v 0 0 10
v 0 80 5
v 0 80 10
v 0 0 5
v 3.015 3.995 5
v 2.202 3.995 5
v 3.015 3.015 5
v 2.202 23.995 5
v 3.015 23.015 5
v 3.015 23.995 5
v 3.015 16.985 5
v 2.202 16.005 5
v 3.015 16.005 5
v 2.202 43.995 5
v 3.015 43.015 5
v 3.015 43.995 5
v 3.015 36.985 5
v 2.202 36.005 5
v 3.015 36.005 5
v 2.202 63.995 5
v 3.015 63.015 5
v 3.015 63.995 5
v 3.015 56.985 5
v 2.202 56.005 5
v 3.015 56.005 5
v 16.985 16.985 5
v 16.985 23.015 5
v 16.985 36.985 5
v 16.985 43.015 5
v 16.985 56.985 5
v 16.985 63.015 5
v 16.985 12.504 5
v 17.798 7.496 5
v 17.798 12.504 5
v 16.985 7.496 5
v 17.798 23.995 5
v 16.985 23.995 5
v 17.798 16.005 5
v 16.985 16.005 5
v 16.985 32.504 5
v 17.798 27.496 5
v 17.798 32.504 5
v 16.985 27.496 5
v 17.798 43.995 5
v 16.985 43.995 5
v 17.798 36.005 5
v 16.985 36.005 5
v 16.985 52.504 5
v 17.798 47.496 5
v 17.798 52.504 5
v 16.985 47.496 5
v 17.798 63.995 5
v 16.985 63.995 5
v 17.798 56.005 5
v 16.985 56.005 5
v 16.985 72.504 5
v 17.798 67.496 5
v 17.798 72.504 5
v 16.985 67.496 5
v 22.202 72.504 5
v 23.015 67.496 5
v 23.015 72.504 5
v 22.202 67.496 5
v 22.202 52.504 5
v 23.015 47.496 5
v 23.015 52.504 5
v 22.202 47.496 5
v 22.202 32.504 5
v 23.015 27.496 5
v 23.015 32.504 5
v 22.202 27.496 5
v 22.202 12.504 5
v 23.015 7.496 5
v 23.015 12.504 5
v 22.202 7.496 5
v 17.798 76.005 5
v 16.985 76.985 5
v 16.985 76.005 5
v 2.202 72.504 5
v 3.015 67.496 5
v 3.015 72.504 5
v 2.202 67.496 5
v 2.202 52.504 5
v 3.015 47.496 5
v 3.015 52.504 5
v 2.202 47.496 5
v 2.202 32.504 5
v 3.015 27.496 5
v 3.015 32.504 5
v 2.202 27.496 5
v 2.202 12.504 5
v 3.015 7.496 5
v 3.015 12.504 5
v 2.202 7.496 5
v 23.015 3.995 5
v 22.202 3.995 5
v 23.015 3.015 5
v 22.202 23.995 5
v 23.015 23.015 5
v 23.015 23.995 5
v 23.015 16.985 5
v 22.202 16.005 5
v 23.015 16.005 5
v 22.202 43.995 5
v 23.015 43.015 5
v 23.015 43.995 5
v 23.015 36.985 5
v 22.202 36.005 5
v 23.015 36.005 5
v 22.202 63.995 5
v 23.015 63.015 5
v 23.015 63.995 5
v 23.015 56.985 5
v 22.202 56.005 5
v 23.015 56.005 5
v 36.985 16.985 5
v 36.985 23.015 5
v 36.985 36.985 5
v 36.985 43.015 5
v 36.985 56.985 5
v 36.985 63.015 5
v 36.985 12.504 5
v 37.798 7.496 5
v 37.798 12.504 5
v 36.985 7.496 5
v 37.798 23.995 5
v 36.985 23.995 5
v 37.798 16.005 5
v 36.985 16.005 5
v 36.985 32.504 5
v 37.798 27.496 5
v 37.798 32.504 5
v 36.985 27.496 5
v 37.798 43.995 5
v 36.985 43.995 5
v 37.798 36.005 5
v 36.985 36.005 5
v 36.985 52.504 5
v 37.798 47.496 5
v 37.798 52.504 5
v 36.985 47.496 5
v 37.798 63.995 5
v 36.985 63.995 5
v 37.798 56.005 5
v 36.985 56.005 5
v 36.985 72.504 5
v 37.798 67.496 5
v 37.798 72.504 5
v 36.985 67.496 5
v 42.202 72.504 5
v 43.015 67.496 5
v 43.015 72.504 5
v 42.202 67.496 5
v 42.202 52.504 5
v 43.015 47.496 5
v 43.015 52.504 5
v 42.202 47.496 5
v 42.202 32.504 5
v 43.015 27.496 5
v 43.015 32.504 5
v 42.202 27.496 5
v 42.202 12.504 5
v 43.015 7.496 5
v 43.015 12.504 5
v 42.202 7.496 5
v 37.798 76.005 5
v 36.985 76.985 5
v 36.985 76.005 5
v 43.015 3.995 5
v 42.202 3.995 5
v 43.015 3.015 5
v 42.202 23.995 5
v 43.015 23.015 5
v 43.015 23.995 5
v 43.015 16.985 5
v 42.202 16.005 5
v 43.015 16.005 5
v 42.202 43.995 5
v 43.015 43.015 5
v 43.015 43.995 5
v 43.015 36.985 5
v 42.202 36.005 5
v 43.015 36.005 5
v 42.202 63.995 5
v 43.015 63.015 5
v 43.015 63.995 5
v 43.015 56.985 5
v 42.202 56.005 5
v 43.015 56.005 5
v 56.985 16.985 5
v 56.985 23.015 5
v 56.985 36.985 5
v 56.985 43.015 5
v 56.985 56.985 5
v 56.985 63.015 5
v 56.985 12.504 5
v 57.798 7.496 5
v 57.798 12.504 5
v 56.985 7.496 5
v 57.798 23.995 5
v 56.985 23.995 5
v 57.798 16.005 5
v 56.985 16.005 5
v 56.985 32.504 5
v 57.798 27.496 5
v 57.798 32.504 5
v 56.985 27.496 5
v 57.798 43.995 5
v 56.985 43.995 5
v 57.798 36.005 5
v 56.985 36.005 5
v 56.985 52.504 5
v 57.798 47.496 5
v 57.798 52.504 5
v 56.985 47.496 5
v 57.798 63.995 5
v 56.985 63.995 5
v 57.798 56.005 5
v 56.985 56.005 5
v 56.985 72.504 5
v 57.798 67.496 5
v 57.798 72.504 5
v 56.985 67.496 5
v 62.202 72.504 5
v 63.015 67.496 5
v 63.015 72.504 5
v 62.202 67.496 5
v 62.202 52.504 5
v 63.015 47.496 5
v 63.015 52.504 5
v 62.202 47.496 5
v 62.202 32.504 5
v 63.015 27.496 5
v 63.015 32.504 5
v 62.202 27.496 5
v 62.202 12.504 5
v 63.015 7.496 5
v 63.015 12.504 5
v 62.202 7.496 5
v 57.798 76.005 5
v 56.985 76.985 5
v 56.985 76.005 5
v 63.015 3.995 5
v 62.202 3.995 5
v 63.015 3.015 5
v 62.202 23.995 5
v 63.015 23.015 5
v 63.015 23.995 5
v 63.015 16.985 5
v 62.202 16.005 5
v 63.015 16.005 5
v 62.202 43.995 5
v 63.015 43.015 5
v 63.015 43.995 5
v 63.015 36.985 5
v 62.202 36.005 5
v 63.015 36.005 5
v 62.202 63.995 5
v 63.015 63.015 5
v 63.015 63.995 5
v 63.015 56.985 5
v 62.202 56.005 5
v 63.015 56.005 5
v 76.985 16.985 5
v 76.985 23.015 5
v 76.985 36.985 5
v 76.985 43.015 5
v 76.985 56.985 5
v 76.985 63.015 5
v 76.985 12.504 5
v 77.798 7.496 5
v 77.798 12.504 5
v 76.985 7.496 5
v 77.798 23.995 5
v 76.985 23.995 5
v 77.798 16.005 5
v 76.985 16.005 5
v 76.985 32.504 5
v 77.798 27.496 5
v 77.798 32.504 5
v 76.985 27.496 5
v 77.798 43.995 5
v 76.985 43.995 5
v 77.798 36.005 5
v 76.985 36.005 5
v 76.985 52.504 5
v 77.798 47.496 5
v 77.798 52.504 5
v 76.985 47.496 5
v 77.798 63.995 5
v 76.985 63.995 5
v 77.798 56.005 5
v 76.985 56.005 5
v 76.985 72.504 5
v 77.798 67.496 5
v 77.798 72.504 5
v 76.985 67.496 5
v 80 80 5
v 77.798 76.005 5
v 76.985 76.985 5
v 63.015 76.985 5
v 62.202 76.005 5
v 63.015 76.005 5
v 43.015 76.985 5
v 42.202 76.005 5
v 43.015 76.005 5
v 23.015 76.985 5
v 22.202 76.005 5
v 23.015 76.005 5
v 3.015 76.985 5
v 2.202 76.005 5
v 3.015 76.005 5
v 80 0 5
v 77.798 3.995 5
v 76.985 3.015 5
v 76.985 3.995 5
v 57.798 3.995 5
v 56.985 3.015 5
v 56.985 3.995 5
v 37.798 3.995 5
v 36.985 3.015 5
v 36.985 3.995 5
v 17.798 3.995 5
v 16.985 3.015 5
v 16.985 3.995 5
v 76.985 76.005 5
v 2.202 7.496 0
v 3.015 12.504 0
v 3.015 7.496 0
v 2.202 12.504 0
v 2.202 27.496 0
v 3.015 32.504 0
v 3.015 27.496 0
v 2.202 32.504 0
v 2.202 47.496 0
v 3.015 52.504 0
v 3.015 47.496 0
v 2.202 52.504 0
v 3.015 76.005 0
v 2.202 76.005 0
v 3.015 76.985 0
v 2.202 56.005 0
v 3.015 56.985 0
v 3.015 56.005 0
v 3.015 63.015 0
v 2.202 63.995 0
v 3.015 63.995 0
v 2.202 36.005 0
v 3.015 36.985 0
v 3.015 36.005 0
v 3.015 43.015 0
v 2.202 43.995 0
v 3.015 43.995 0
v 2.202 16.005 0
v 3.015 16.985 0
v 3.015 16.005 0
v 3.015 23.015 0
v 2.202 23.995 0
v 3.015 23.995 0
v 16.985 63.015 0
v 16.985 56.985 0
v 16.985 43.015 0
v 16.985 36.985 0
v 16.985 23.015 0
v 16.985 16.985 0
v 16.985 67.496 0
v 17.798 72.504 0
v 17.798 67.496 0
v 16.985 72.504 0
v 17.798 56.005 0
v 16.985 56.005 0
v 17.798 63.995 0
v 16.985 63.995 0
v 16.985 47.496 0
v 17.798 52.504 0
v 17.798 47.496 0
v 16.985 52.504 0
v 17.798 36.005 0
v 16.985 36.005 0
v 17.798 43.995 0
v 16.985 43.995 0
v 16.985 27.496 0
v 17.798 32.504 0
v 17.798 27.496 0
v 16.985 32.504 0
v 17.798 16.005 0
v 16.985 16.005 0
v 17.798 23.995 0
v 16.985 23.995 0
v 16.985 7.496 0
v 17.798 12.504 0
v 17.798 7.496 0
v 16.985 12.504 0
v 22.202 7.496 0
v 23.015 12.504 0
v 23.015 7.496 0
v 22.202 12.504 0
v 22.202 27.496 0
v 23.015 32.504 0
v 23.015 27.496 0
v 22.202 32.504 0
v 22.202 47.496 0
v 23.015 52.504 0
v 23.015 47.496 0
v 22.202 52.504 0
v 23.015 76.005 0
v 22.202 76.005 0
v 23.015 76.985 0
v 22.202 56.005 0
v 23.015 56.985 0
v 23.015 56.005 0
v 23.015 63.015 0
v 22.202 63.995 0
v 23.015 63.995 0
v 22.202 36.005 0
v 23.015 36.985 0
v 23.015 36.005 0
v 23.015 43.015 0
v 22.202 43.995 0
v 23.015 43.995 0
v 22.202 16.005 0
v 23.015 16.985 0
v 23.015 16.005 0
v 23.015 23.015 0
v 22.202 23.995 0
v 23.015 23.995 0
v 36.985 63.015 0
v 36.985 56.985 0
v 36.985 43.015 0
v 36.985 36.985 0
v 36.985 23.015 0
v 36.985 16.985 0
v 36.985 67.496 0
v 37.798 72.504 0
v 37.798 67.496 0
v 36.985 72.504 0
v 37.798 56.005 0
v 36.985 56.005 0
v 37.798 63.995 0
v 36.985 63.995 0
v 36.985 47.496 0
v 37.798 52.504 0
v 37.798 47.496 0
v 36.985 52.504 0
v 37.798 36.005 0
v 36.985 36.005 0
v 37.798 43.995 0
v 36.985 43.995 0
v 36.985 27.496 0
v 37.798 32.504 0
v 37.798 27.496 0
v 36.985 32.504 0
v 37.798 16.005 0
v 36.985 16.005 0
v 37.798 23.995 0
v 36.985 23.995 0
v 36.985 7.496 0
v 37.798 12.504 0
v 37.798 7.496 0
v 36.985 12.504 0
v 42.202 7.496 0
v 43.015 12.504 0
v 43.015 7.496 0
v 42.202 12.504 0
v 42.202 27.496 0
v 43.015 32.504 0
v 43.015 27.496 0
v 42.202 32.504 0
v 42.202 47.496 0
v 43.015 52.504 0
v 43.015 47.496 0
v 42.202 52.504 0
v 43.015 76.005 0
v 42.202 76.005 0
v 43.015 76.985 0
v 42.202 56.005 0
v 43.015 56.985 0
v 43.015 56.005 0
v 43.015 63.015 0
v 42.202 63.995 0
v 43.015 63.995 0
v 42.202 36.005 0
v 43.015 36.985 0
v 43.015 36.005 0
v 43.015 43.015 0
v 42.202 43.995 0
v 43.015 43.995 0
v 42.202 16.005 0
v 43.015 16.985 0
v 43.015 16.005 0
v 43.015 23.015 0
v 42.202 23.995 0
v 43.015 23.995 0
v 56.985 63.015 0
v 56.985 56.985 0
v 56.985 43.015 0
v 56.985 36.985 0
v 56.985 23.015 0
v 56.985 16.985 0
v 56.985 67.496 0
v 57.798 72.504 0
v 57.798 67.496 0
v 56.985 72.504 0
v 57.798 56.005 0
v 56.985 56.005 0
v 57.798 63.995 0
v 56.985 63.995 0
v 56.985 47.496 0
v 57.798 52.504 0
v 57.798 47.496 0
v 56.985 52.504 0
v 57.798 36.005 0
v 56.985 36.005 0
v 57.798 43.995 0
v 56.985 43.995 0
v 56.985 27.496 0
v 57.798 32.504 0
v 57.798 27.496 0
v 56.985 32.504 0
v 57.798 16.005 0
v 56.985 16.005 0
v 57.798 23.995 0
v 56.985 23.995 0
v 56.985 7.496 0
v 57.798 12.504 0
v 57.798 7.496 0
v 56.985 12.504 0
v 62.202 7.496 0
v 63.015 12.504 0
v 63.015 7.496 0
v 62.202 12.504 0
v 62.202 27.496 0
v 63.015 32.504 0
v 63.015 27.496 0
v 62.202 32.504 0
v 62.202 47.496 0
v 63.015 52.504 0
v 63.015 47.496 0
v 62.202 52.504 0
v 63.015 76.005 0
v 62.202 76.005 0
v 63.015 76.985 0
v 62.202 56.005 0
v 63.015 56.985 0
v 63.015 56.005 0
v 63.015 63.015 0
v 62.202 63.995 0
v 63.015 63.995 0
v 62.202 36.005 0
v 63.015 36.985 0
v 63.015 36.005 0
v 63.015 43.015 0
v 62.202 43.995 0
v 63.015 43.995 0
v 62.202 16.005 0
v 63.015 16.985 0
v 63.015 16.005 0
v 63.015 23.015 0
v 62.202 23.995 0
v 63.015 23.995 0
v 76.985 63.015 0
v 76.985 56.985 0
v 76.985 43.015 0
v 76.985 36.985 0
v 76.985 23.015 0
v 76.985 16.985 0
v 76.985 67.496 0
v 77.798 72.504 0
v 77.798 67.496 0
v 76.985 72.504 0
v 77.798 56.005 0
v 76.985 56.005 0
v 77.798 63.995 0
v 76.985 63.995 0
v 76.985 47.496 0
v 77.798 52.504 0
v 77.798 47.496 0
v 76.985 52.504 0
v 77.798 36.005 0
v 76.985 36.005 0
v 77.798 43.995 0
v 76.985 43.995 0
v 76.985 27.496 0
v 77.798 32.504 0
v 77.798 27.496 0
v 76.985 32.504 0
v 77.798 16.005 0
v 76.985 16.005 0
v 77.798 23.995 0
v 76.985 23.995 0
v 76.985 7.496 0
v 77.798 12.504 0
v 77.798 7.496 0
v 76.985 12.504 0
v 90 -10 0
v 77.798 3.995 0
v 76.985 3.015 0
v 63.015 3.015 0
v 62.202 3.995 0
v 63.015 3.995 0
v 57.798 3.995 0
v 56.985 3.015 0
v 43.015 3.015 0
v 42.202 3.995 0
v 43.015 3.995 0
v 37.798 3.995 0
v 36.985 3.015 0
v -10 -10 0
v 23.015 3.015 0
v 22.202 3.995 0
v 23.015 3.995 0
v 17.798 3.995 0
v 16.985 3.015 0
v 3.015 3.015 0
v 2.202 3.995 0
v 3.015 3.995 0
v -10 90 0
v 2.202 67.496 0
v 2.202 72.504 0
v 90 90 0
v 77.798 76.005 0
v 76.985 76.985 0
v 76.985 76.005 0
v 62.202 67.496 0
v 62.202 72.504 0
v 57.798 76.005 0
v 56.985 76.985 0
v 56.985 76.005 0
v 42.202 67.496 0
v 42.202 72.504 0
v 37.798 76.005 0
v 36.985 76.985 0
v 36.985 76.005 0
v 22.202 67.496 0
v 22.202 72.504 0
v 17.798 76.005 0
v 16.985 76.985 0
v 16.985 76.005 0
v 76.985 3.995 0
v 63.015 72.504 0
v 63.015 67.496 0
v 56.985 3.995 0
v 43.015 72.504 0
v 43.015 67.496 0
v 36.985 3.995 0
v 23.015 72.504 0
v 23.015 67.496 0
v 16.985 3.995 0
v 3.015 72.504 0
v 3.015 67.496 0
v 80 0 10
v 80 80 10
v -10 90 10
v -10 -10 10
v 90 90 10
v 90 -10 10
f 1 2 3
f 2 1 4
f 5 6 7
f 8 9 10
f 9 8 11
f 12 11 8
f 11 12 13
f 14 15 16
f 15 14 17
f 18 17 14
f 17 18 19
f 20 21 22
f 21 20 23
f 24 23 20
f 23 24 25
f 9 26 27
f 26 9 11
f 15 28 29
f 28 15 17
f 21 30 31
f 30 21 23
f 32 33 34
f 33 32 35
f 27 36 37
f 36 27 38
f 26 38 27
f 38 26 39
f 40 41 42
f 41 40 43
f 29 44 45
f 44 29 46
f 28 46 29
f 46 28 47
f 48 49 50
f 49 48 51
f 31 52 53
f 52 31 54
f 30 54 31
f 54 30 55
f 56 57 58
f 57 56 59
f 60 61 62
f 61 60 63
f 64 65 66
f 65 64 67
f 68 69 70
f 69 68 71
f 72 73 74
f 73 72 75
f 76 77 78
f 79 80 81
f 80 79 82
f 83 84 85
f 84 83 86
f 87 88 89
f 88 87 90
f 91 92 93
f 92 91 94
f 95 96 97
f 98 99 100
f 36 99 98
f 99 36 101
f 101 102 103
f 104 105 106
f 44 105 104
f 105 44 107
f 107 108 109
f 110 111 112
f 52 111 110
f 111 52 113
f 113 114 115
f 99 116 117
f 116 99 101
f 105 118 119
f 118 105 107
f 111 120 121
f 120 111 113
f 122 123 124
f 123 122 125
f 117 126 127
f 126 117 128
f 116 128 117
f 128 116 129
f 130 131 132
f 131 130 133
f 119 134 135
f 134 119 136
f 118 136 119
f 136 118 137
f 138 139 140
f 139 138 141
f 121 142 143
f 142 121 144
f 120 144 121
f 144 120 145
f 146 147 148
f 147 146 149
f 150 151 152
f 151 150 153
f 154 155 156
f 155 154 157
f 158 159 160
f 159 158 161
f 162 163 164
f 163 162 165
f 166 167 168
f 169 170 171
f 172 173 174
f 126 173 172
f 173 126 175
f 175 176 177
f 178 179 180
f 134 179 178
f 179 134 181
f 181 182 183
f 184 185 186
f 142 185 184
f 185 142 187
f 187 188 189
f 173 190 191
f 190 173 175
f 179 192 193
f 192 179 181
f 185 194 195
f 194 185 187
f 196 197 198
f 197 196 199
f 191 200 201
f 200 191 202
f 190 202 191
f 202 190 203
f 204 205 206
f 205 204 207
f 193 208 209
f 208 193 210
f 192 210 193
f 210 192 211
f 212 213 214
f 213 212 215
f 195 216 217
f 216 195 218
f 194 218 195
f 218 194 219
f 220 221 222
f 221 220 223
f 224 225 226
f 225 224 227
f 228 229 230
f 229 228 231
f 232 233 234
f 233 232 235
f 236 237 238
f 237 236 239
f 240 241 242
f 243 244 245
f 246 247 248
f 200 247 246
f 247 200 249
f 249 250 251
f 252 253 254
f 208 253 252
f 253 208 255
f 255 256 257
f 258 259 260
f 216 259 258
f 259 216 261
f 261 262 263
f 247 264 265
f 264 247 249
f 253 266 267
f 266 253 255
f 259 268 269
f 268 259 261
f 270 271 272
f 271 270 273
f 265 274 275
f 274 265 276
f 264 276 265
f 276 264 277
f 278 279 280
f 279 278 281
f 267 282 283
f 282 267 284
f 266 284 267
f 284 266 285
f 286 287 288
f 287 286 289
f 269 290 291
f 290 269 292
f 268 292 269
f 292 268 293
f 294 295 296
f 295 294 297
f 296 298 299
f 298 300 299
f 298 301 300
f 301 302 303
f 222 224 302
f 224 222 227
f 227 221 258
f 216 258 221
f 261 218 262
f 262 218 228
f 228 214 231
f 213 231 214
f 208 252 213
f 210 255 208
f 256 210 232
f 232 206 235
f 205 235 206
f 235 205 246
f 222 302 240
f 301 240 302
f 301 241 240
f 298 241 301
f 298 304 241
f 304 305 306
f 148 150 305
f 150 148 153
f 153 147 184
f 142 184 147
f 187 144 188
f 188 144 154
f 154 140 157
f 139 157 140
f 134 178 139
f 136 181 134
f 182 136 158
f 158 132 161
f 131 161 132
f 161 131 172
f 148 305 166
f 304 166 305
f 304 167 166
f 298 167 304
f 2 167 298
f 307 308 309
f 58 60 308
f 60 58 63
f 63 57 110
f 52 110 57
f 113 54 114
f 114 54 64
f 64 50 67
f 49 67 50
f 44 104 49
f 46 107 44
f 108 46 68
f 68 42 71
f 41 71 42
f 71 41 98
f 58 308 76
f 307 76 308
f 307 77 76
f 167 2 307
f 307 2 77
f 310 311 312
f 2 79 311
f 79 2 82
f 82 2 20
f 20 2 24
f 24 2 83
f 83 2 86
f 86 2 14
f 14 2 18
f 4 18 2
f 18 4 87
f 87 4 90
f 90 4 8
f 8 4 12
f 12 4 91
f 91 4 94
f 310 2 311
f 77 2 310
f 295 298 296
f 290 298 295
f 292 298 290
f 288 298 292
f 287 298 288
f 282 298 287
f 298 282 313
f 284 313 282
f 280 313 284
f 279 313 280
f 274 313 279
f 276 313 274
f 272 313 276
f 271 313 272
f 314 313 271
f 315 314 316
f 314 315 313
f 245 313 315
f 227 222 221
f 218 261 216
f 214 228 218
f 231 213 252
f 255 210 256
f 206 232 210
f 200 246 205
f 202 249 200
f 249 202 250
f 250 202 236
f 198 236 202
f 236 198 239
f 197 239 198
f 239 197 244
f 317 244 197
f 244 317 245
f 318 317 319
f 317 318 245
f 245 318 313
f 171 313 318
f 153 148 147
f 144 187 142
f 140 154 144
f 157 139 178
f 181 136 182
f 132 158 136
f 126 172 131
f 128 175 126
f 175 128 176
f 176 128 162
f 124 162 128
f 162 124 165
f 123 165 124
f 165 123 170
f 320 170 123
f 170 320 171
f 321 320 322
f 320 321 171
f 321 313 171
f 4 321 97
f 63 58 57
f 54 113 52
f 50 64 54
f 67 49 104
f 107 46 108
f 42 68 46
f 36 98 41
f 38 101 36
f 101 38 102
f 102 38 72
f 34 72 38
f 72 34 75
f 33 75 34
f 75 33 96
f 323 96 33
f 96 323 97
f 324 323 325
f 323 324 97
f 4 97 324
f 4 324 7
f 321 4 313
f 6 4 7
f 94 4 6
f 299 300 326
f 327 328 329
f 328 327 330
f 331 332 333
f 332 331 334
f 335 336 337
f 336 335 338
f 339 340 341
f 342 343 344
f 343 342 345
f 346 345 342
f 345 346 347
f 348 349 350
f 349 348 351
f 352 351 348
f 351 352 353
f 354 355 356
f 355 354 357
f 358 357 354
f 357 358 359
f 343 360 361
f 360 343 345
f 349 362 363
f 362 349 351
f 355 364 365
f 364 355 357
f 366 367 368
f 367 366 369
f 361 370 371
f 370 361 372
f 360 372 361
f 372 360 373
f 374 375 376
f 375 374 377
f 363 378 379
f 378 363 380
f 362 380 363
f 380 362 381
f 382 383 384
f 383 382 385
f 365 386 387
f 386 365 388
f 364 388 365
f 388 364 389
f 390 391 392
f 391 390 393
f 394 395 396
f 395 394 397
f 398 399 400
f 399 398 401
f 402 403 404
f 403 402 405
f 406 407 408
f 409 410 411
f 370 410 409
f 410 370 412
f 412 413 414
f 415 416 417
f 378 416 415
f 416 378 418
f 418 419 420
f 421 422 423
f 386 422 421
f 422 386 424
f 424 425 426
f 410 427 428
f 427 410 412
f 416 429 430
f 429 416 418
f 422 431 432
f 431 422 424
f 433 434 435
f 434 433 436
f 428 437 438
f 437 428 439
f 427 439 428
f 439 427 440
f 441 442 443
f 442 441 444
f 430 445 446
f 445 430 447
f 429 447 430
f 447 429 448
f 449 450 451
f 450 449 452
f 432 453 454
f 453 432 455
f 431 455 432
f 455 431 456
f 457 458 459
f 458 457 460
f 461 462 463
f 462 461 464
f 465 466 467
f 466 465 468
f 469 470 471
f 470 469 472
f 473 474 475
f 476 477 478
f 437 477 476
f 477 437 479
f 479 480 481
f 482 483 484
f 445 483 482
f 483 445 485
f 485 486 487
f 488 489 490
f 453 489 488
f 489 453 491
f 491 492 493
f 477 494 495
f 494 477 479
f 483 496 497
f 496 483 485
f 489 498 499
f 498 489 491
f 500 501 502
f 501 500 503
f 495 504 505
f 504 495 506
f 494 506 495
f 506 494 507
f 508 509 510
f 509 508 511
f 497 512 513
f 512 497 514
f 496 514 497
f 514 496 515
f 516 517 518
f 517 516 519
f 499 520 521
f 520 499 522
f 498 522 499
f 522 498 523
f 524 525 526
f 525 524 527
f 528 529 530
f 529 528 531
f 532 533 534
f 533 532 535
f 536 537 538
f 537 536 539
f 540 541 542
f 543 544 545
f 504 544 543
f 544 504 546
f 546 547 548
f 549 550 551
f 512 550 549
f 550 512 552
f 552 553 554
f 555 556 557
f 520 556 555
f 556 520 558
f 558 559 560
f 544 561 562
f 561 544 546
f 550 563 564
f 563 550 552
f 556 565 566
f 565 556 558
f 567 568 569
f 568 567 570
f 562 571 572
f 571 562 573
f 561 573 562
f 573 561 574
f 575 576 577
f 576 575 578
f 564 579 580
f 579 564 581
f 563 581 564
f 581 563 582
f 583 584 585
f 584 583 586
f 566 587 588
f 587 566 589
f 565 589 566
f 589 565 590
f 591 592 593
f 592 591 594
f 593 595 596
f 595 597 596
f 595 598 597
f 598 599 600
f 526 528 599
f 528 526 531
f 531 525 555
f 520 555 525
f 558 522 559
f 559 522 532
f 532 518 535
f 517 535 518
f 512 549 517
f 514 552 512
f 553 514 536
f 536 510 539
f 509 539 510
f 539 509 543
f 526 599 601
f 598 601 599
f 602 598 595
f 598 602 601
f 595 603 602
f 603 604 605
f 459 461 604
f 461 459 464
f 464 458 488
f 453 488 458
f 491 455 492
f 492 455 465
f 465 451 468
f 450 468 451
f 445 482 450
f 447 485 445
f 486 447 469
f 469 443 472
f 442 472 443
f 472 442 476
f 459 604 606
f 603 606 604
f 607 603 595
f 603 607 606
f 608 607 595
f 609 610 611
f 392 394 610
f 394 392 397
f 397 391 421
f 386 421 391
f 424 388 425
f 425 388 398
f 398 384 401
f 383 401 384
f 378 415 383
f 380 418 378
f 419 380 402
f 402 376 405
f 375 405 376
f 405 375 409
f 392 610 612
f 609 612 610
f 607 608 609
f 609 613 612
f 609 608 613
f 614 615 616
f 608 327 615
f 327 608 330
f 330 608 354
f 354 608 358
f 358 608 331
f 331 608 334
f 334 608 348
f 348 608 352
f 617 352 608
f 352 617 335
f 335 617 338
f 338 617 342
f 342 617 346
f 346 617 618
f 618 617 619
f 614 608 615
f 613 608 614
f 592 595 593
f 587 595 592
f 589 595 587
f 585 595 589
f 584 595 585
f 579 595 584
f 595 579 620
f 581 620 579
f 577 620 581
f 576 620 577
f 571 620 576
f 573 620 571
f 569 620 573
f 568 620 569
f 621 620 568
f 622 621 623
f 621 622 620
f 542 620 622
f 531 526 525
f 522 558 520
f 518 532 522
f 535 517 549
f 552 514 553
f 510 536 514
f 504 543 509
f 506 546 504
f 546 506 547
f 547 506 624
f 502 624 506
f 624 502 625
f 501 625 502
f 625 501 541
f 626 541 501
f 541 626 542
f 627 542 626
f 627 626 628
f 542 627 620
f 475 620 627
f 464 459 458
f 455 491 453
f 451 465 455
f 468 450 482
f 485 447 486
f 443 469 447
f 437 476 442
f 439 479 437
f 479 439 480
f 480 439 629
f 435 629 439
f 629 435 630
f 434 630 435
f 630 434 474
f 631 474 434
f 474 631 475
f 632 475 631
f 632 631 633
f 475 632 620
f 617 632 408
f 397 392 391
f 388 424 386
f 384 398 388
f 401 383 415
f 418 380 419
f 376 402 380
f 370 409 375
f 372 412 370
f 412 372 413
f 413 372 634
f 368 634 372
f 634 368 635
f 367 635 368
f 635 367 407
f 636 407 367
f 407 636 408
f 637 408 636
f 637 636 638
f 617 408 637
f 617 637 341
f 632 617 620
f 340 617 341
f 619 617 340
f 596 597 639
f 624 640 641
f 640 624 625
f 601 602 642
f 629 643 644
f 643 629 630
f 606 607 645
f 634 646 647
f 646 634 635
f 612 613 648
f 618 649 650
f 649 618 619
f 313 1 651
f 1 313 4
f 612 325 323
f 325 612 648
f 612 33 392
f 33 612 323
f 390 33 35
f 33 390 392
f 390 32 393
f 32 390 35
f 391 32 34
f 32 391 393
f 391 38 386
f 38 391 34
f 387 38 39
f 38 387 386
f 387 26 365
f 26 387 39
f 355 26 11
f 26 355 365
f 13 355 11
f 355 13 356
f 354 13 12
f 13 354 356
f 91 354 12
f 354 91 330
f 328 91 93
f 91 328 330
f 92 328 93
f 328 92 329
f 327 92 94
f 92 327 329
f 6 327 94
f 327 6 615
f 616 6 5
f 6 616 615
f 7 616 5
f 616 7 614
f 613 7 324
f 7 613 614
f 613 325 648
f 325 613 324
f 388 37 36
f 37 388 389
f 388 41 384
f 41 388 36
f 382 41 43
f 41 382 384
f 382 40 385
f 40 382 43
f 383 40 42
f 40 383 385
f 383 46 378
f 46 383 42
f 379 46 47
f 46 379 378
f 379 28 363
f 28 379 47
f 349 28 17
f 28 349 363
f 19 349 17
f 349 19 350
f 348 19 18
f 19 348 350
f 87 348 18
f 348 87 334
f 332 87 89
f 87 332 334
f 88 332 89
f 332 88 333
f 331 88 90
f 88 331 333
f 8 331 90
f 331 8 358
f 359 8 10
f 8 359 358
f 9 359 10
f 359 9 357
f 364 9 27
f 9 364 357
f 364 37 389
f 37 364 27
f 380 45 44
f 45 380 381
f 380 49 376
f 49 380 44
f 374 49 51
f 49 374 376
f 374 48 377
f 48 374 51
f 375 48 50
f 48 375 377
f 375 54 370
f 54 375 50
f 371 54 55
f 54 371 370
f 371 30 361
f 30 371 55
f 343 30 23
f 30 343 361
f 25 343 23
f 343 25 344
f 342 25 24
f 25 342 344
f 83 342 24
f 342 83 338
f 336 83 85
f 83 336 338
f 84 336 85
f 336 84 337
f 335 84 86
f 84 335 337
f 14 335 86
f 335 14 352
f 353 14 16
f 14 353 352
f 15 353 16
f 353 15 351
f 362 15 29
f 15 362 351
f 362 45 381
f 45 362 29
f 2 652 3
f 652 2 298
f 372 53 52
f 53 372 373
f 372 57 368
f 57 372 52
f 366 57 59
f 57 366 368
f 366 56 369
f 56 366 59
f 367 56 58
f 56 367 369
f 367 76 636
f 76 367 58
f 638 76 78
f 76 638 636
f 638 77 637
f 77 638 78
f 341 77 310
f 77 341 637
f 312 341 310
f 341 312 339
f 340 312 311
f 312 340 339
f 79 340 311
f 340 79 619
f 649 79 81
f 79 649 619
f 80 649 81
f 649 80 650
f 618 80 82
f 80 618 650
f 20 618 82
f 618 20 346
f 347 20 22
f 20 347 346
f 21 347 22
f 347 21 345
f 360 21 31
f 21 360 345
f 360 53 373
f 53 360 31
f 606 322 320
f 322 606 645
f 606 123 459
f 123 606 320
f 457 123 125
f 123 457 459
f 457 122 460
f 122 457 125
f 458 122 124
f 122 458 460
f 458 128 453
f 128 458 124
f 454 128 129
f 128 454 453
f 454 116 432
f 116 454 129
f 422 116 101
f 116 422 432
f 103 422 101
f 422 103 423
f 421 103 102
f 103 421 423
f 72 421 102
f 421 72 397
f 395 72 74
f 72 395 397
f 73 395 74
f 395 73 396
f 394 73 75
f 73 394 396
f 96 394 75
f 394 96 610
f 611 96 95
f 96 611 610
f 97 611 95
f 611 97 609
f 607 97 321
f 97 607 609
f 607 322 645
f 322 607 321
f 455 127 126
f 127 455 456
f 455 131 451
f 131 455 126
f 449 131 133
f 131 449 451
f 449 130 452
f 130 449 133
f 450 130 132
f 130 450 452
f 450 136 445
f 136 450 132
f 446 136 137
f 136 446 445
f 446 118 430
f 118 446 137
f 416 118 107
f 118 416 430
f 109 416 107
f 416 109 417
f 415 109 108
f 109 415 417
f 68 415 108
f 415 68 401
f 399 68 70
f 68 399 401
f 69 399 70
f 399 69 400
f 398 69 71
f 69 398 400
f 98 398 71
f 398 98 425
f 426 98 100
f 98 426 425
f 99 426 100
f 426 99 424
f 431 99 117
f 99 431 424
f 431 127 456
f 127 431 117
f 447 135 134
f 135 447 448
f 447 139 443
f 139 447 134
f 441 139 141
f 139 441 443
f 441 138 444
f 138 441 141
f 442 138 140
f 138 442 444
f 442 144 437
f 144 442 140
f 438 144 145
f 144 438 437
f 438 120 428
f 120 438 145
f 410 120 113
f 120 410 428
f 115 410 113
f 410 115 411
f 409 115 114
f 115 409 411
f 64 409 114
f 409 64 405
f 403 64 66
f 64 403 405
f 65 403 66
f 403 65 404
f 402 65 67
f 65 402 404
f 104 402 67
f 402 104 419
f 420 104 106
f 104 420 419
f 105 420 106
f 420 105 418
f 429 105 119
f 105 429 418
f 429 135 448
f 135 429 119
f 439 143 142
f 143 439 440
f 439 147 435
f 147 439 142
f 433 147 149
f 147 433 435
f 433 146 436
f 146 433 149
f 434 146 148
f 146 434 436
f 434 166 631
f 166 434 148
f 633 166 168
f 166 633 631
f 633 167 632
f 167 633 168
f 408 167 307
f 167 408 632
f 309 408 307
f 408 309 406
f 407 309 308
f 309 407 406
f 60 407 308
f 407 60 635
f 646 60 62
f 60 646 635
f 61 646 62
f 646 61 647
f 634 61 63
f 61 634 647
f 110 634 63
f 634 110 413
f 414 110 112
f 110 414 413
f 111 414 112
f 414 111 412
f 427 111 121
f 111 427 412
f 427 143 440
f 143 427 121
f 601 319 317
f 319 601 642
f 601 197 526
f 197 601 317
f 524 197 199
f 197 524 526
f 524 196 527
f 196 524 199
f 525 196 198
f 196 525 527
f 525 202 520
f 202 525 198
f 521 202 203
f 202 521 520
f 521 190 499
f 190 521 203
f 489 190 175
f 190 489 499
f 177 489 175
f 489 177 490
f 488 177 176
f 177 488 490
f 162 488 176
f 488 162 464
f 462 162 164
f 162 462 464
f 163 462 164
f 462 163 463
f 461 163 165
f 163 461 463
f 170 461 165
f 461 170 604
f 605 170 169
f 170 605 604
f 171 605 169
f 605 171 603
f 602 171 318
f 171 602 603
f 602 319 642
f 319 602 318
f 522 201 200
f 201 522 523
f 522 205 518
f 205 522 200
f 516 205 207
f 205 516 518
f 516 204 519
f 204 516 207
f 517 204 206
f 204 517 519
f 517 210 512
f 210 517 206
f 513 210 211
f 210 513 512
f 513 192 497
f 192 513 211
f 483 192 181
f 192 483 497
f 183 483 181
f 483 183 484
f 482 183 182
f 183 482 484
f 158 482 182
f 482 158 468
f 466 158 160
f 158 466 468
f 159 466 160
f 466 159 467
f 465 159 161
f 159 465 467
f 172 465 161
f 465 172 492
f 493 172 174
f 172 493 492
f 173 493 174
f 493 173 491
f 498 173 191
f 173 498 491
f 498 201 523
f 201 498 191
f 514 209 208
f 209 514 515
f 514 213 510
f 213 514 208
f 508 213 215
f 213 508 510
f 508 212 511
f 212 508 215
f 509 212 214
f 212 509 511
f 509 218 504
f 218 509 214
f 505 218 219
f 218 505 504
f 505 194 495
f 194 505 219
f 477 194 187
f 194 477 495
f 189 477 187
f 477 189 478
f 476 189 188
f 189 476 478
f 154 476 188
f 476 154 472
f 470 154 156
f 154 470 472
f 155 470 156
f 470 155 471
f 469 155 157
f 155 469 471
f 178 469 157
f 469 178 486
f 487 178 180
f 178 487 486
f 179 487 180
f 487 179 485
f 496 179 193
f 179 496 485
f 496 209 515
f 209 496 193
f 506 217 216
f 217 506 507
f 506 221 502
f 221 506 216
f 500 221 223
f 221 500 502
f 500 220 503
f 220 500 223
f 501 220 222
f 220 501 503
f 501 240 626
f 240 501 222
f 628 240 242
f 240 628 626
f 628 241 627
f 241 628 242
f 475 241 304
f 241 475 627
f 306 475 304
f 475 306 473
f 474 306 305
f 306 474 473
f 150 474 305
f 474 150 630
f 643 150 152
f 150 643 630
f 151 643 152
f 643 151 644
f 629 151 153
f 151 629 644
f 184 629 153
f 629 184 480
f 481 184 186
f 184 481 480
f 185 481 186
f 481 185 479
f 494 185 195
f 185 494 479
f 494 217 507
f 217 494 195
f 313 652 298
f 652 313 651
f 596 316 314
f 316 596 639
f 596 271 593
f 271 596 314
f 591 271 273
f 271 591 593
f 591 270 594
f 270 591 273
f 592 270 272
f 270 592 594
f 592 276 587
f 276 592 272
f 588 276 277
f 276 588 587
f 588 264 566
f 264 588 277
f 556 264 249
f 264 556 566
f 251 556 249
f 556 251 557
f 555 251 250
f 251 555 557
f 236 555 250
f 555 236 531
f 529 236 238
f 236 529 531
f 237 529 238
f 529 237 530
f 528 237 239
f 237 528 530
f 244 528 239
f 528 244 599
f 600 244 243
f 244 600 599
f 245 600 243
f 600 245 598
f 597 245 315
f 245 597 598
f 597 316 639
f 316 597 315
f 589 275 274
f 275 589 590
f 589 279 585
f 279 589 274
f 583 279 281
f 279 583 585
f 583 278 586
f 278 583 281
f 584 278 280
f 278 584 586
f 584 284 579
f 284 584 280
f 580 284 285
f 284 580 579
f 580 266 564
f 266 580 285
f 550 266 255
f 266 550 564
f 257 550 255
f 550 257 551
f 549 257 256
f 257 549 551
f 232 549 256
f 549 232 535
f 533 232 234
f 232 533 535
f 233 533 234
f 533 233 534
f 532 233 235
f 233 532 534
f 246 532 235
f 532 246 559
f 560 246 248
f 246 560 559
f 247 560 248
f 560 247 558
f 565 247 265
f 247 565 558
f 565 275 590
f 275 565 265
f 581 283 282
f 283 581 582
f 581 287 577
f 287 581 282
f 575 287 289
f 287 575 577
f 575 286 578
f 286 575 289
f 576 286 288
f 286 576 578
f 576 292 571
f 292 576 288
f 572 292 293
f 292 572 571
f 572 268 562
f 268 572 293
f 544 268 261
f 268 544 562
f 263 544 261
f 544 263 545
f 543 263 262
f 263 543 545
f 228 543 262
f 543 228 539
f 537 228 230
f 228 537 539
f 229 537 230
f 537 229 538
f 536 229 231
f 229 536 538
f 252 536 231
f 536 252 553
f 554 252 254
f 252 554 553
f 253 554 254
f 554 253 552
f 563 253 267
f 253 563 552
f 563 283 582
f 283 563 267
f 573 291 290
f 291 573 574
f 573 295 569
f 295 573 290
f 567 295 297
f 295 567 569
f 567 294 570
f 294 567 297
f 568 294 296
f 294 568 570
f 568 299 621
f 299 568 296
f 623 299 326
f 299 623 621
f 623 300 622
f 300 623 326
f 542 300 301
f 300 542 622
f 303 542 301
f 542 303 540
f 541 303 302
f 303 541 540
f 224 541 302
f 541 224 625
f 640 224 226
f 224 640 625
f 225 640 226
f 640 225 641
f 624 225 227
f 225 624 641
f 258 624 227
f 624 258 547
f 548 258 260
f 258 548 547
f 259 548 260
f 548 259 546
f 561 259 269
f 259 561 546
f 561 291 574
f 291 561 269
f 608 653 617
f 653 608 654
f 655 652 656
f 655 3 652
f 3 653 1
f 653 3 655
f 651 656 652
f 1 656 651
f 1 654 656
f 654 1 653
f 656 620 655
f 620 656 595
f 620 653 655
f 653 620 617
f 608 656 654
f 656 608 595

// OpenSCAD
// This is an experiment in crazy.;
// Basically a hitbox, in the form factor of a rubiks cube.
// 1 unit = 1mm

// -*- mode: c -*-
/* All distances are in mm. */

$fn=2000;

module switch_hole(position, height=20) {
  // https://github.com/technomancy/atreus/blob/master/case/openscad/atreus_case.scad
  /* Cherry MX switch hole with the center at `position`. Sizes come
      from the ErgoDox design. */
  hole_size    = 13.97;
  notch_width  = 3.5001;
  notch_offset = 4.2545;
  notch_depth  = 0.8128;

  // Convert from 2d to 3d
  linear_extrude(height=height, center=true) {
    square([hole_size, hole_size], center=true);

    translate([0, notch_offset]) {
      square([hole_size+2*notch_depth, notch_width], center=true);
    }
    translate([0, -notch_offset]) {
      square([hole_size+2*notch_depth, notch_width], center=true);
    }  
  }   
};

switch_cutout_width = 20;
switch_cutout_height = 5;
module switch_cutout(position) {
    w = switch_cutout_width;
    h = switch_cutout_height;
  translate(position) {
    difference() {
      cube([w, w, h], true);
      switch_hole([0], height = 200);
    }
  }
}

module switch_with_border(){
  switch_cutout([0,0,2.5]);
  difference() {
    translate([0,0,5]) {
      cube([30,30,10], true);
    }
    translate([0,0,5]){
      cube([20, 20, 10], true);
    }
  }
}

offset = 0.5 * switch_cutout_width;
MAX_X = 3;
MAX_Y = 3;

// A blank side
module blank_plate(height_scalar=1){
  // NOTE: for screws, make them offset on each side.
  // E.g.:
  // Top side:    x0xxxx0x
  // Right side:  xx0xx0xx

  translate([-offset, -offset,0]){
    cube_w = (MAX_X + 2) * switch_cutout_width;
    cube([cube_w,cube_w, switch_cutout_height * height_scalar]);
  }
}

module key_layout() {

  // Flip it to make it easier to deal with
  {
    // Generate the keyslots
    for (x = [0:MAX_X]) {
        for (y = [0:MAX_Y]){
            // Draw the cutout
            new_x = x * switch_cutout_width + offset;
            new_y = y * switch_cutout_width + offset;
            switch_cutout([new_x,new_y,switch_cutout_height / 2]);
        }
    }

    // Create the border
    difference() {
      // This represents the border volume
      { 
        blank_plate(height_scalar=2);
      }

      // This represents the switches volume
      {
        cube_w = (MAX_X + 1) * switch_cutout_width;
        cube_h = 100;
        translate([0,0,-cube_h / 2]){
          cube([cube_w, cube_w, cube_h]);
        }
      }
    }  
  }
}

key_layout();
